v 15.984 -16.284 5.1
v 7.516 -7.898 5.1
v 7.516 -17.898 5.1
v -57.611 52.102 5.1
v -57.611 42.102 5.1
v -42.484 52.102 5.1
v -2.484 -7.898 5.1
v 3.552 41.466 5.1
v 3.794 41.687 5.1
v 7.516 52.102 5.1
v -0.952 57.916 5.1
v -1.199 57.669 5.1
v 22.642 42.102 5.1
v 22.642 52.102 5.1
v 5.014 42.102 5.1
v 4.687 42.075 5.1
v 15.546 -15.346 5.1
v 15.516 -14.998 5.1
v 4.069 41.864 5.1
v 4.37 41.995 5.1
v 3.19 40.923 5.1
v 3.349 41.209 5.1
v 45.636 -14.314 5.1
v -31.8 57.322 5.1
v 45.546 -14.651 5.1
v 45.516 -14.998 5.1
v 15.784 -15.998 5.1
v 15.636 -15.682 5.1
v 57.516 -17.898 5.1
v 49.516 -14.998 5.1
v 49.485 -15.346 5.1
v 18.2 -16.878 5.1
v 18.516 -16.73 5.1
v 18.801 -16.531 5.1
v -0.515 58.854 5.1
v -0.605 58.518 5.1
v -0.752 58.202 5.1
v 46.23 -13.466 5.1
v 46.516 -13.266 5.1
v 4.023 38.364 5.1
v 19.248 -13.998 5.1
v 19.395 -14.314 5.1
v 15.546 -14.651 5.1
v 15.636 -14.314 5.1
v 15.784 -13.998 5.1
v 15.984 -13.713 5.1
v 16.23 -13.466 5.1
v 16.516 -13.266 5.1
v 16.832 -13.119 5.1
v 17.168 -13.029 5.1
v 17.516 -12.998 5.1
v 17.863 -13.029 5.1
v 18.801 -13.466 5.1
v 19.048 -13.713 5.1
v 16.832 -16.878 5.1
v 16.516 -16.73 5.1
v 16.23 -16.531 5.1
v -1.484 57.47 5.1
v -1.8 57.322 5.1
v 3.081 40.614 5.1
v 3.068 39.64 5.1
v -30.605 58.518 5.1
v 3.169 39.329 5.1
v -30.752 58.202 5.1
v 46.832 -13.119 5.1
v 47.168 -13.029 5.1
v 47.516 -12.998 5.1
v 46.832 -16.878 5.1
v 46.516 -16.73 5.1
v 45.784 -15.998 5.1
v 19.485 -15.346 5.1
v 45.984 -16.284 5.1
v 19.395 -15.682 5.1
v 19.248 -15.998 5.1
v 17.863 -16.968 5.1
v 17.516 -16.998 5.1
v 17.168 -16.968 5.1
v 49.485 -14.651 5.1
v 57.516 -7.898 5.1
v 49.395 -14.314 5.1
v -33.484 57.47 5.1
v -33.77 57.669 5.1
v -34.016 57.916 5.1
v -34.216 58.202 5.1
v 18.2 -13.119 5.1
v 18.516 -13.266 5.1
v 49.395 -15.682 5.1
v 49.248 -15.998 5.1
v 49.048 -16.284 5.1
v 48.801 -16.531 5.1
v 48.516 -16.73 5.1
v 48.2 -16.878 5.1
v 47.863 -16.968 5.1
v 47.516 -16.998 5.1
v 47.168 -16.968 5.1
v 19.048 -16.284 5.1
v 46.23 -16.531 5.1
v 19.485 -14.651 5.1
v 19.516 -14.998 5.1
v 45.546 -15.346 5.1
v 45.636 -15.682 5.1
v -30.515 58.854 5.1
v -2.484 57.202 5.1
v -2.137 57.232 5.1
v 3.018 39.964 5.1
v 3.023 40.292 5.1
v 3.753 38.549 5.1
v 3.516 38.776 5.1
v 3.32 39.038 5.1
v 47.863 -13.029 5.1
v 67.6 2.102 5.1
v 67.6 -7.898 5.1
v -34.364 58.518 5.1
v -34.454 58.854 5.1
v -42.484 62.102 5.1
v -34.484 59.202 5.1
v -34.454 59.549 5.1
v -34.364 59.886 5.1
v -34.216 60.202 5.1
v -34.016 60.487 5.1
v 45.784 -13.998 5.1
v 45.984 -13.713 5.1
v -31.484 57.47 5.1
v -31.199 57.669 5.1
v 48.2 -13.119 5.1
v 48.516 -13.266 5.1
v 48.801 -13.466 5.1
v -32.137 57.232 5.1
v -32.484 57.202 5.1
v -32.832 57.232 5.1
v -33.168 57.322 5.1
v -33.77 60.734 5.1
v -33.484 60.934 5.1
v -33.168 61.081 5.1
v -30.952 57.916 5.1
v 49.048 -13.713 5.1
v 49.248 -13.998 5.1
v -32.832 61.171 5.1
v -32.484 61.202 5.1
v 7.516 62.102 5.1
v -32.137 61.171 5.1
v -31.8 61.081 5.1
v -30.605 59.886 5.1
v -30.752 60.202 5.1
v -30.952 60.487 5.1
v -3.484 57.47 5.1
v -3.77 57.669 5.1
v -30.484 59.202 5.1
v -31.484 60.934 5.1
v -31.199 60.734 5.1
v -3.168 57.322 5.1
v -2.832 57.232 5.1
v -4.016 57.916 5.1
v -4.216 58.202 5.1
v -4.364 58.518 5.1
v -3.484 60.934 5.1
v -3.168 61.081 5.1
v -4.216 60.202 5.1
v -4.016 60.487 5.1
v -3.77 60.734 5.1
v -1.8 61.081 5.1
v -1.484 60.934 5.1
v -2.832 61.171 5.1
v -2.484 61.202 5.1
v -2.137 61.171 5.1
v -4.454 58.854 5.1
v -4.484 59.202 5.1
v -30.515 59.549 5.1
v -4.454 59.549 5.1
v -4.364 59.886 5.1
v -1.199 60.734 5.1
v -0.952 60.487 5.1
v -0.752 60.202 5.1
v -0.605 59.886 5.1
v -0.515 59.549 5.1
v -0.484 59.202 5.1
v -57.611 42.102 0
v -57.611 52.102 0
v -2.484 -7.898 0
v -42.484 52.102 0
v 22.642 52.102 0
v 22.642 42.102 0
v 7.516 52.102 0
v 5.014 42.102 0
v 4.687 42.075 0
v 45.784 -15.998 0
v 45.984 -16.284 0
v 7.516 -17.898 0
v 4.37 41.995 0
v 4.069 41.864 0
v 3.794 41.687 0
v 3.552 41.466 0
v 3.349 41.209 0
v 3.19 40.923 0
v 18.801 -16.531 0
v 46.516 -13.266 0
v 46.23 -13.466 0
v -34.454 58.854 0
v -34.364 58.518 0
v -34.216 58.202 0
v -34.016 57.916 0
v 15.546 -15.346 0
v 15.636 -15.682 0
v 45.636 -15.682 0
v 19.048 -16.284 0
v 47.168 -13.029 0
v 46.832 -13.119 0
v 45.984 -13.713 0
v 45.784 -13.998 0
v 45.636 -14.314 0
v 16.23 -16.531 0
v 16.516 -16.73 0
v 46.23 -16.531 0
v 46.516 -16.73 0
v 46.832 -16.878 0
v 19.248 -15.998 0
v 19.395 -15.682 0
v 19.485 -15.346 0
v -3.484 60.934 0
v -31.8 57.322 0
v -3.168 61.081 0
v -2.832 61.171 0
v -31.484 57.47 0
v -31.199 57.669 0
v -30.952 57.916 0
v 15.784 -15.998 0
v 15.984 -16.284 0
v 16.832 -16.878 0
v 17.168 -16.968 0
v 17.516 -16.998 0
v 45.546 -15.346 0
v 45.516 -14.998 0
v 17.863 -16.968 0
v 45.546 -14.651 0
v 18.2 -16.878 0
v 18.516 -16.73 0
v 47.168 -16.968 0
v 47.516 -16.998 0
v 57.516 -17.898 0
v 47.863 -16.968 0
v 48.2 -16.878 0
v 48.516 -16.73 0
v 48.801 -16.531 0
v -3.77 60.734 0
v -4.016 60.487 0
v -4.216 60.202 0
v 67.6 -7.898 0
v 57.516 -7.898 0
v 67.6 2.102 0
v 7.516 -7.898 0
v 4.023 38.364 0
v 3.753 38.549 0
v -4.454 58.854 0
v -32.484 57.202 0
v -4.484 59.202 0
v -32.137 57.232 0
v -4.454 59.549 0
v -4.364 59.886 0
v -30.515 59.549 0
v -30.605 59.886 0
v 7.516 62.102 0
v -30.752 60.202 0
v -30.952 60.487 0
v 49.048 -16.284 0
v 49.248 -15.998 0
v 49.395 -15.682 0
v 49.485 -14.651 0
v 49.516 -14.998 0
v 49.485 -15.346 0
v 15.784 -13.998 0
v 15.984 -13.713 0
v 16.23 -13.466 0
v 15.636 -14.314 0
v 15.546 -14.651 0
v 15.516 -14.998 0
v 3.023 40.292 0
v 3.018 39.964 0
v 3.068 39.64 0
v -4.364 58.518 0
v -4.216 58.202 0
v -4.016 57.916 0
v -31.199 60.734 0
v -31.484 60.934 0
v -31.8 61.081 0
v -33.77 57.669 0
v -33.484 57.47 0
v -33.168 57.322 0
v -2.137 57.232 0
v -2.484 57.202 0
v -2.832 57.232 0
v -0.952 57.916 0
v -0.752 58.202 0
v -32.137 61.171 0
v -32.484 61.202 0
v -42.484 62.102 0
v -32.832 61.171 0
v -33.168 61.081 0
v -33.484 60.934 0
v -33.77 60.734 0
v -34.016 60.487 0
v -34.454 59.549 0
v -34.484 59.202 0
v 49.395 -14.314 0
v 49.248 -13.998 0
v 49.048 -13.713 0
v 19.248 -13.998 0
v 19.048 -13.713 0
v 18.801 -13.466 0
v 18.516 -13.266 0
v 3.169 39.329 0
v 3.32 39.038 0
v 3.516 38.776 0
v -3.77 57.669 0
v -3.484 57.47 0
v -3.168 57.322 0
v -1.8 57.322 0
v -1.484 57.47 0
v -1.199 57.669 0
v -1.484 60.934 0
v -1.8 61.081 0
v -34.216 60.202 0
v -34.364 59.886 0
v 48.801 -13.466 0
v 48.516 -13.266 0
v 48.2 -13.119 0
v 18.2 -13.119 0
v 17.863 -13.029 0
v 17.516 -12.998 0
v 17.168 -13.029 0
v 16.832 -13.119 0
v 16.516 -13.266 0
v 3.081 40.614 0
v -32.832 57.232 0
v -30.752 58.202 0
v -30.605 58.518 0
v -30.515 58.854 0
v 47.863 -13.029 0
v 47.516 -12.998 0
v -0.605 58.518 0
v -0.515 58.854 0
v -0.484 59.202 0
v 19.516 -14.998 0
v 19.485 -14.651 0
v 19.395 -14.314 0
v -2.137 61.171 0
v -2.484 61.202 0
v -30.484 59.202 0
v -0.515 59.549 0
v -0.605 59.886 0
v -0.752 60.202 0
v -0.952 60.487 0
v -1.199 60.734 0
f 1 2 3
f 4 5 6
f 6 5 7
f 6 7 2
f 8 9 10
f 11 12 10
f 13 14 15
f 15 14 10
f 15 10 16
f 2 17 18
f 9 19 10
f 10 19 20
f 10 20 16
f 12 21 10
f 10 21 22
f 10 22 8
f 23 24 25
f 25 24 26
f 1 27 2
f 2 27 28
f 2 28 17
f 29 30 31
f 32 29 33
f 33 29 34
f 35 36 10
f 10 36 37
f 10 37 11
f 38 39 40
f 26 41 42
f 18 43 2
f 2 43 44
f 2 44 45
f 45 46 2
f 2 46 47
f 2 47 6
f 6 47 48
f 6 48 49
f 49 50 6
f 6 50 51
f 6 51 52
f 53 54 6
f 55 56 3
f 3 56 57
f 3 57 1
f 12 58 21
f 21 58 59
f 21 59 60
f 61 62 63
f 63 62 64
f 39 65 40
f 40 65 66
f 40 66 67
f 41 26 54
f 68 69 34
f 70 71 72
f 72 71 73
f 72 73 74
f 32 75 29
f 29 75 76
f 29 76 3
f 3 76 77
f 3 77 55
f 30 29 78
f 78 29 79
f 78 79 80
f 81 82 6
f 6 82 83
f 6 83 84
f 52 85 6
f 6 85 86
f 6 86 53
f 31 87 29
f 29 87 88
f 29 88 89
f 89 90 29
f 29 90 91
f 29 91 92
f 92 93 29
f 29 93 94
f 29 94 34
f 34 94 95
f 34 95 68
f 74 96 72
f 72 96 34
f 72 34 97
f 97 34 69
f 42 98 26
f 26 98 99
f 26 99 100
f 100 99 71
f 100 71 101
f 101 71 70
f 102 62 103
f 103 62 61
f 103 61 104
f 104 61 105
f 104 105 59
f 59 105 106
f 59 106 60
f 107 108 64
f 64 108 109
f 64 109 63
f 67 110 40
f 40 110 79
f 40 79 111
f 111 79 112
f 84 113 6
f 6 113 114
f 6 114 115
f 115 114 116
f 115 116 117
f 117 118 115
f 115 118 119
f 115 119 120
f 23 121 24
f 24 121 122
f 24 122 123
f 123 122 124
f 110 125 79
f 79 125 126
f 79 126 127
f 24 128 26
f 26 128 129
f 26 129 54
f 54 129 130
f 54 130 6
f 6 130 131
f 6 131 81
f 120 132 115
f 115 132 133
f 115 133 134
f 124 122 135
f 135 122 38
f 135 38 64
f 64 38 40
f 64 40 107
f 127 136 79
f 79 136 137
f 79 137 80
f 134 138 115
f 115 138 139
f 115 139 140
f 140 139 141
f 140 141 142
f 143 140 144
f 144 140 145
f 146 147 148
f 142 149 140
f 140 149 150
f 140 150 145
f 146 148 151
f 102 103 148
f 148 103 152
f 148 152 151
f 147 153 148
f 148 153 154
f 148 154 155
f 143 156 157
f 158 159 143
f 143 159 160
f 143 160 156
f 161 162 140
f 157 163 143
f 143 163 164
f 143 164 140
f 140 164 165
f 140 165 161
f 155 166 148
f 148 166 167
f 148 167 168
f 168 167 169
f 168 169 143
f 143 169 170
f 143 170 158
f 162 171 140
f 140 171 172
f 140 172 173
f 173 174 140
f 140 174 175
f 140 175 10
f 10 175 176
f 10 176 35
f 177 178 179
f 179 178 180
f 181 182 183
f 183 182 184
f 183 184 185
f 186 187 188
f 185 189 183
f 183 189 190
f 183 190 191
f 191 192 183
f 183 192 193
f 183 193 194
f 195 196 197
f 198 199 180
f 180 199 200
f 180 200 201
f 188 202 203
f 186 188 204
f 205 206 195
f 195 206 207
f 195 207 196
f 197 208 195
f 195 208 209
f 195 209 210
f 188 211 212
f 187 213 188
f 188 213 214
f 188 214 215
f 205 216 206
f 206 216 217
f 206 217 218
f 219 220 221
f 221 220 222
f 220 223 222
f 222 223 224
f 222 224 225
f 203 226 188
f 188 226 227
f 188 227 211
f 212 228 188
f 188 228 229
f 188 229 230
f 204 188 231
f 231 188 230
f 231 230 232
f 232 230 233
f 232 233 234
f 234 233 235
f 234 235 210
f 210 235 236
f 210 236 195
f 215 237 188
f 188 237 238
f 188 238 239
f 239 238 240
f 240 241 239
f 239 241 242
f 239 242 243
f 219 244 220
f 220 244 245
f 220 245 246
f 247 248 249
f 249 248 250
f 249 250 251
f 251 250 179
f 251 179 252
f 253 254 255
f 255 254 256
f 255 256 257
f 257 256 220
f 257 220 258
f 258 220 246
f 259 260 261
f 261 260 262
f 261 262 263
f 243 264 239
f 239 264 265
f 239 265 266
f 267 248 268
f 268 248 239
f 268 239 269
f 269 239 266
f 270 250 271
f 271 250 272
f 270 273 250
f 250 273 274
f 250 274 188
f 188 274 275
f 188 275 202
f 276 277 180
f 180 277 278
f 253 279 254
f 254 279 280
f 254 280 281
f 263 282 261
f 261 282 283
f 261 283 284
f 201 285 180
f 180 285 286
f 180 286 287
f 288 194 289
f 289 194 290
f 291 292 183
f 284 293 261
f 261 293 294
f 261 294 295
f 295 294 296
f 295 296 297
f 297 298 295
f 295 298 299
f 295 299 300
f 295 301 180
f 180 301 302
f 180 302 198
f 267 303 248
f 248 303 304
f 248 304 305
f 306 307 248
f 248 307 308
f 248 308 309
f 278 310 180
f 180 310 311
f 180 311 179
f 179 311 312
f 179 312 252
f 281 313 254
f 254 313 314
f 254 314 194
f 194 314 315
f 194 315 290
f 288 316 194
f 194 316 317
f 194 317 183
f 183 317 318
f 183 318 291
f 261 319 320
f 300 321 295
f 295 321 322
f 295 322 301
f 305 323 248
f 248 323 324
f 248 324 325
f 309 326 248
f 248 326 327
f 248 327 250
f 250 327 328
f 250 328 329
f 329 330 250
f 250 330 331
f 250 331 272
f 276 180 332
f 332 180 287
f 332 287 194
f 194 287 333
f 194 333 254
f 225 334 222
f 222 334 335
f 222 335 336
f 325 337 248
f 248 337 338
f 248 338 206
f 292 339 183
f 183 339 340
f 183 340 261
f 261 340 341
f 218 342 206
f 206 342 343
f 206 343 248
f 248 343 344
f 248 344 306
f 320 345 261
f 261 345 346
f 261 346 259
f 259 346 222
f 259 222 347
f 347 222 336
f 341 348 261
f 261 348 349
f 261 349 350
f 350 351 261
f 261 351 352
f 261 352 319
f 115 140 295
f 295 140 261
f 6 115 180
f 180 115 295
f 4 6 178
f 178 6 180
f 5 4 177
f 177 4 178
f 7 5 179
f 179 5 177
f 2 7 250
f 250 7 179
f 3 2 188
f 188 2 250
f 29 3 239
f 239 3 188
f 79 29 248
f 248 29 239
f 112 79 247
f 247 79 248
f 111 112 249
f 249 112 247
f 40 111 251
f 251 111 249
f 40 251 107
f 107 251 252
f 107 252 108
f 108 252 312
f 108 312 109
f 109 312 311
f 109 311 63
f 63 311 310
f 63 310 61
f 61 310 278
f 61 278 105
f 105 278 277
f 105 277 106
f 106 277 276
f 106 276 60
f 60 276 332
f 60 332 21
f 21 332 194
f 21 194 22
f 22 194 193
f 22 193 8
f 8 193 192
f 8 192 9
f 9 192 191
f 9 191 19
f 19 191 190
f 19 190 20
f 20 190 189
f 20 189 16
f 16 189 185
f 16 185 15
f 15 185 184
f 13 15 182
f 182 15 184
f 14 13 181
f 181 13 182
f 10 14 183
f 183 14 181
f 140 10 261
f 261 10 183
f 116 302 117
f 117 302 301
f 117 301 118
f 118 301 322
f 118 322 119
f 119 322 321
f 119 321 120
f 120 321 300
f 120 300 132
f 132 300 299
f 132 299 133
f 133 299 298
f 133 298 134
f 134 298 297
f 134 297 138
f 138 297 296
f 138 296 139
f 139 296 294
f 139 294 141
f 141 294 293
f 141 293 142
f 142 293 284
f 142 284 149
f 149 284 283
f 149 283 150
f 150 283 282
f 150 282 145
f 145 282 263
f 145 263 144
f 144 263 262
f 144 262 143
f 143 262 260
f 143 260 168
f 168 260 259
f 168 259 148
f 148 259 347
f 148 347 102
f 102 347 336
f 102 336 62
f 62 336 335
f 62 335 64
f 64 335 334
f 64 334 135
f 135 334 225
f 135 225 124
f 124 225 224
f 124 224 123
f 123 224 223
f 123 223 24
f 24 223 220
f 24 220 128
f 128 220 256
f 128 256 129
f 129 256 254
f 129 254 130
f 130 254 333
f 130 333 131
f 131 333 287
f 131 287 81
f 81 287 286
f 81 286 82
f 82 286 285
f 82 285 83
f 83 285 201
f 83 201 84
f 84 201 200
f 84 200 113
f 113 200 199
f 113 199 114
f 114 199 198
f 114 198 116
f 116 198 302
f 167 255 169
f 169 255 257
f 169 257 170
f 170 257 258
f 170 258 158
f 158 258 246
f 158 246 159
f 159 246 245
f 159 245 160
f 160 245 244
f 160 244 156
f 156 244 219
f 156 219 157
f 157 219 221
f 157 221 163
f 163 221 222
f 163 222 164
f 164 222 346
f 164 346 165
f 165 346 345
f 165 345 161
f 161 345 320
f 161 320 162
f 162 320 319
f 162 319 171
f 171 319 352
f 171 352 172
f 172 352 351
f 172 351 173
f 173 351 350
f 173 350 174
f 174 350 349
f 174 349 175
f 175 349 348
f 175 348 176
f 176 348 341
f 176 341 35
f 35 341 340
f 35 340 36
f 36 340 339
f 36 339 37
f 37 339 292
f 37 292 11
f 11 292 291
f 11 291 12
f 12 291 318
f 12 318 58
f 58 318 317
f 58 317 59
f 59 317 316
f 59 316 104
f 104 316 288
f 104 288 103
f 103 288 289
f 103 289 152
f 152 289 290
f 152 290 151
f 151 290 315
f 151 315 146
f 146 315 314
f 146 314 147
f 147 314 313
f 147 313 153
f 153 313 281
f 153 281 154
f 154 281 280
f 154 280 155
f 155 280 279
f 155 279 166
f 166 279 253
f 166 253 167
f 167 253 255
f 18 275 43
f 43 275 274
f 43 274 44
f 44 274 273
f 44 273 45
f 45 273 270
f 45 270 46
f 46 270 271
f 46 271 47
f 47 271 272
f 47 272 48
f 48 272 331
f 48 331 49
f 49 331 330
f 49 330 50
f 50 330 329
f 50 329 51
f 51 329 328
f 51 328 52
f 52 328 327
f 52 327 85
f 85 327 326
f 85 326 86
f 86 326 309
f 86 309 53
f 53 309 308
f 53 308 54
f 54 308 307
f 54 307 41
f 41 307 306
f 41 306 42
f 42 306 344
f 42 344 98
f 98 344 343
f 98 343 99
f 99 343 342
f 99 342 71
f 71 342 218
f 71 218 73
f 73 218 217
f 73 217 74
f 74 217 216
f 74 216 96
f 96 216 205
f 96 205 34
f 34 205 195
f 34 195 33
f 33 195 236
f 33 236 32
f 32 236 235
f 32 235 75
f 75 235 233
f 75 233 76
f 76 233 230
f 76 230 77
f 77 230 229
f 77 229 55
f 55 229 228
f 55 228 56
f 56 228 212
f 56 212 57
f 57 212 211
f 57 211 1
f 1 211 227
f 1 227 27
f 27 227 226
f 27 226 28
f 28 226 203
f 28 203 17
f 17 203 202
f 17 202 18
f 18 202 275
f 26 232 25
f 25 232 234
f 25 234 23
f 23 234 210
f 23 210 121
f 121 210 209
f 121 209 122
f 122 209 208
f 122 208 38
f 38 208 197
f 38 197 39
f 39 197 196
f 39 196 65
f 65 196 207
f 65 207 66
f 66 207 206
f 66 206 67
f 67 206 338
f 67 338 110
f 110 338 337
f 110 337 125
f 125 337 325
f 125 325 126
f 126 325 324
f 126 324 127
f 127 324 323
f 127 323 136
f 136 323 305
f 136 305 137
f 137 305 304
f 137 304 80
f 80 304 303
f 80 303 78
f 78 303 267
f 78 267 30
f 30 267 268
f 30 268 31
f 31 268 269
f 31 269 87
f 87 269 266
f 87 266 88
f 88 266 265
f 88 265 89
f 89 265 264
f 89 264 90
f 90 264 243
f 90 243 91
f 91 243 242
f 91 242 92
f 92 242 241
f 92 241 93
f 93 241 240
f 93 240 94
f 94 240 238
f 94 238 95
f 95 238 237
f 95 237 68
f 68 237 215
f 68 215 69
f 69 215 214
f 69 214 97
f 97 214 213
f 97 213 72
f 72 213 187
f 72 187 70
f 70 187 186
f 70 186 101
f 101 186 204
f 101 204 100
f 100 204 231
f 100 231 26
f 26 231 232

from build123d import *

# Parameters (mm, degrees)
SKETCH1_R           = 2
BOSS_EXTRUDE1_DEPTH = 5.1


with BuildPart() as part:
    # Sketch1 → Boss-Extrude1 (new body)
    with BuildSketch(Plane.XY):
        with BuildLine():
            Line((-42.484250182, 62.101563959), (-42.484250182, 52.101563959))
            Line((-42.484250182, 52.101563959), (-57.610510686, 52.101563959))
            Line((-57.610510686, 52.101563959), (-57.610510686, 42.101563959))
            Line((-57.610510686, 42.101563959), (-2.484250182, -7.898436041))
            Line((-2.484250182, -7.898436041), (7.515749818, -7.898436041))
            Line((7.515749818, -7.898436041), (7.515749818, -17.898436041))
            Line((7.515749818, -17.898436041), (57.515749818, -17.898436041))
            Line((57.515749818, -17.898436041), (57.515749818, -7.898436041))
            Line((57.515749818, -7.898436041), (67.599923488, -7.898436041))
            Line((67.599923488, -7.898436041), (67.599923488, 2.101563959))
            Line((67.599923488, 2.101563959), (4.022842983, 38.364289155))
            ThreePointArc((4.022842983, 38.364289155), (3.080536426, 40.614131219), (5.013739676, 42.101563959))
            Line((5.013739676, 42.101563959), (22.642010323, 42.101563959))
            Line((22.642010323, 42.101563959), (22.642010323, 52.101563959))
            Line((22.642010323, 52.101563959), (7.515749818, 52.101563959))
            Line((7.515749818, 52.101563959), (7.515749818, 62.101563959))
            Line((7.515749818, 62.101563959), (-42.484250182, 62.101563959))
        make_face()
        with Locations((-32.484250182, 59.201563959)):
            Circle(SKETCH1_R, mode=Mode.SUBTRACT)
        with Locations((-2.484250182, 59.201563959)):
            Circle(SKETCH1_R, mode=Mode.SUBTRACT)
        with Locations((17.515749818, -14.998436041)):
            Circle(SKETCH1_R, mode=Mode.SUBTRACT)
        with Locations((47.515749818, -14.998436041)):
            Circle(SKETCH1_R, mode=Mode.SUBTRACT)
    extrude(amount=BOSS_EXTRUDE1_DEPTH)


solid = part.part
